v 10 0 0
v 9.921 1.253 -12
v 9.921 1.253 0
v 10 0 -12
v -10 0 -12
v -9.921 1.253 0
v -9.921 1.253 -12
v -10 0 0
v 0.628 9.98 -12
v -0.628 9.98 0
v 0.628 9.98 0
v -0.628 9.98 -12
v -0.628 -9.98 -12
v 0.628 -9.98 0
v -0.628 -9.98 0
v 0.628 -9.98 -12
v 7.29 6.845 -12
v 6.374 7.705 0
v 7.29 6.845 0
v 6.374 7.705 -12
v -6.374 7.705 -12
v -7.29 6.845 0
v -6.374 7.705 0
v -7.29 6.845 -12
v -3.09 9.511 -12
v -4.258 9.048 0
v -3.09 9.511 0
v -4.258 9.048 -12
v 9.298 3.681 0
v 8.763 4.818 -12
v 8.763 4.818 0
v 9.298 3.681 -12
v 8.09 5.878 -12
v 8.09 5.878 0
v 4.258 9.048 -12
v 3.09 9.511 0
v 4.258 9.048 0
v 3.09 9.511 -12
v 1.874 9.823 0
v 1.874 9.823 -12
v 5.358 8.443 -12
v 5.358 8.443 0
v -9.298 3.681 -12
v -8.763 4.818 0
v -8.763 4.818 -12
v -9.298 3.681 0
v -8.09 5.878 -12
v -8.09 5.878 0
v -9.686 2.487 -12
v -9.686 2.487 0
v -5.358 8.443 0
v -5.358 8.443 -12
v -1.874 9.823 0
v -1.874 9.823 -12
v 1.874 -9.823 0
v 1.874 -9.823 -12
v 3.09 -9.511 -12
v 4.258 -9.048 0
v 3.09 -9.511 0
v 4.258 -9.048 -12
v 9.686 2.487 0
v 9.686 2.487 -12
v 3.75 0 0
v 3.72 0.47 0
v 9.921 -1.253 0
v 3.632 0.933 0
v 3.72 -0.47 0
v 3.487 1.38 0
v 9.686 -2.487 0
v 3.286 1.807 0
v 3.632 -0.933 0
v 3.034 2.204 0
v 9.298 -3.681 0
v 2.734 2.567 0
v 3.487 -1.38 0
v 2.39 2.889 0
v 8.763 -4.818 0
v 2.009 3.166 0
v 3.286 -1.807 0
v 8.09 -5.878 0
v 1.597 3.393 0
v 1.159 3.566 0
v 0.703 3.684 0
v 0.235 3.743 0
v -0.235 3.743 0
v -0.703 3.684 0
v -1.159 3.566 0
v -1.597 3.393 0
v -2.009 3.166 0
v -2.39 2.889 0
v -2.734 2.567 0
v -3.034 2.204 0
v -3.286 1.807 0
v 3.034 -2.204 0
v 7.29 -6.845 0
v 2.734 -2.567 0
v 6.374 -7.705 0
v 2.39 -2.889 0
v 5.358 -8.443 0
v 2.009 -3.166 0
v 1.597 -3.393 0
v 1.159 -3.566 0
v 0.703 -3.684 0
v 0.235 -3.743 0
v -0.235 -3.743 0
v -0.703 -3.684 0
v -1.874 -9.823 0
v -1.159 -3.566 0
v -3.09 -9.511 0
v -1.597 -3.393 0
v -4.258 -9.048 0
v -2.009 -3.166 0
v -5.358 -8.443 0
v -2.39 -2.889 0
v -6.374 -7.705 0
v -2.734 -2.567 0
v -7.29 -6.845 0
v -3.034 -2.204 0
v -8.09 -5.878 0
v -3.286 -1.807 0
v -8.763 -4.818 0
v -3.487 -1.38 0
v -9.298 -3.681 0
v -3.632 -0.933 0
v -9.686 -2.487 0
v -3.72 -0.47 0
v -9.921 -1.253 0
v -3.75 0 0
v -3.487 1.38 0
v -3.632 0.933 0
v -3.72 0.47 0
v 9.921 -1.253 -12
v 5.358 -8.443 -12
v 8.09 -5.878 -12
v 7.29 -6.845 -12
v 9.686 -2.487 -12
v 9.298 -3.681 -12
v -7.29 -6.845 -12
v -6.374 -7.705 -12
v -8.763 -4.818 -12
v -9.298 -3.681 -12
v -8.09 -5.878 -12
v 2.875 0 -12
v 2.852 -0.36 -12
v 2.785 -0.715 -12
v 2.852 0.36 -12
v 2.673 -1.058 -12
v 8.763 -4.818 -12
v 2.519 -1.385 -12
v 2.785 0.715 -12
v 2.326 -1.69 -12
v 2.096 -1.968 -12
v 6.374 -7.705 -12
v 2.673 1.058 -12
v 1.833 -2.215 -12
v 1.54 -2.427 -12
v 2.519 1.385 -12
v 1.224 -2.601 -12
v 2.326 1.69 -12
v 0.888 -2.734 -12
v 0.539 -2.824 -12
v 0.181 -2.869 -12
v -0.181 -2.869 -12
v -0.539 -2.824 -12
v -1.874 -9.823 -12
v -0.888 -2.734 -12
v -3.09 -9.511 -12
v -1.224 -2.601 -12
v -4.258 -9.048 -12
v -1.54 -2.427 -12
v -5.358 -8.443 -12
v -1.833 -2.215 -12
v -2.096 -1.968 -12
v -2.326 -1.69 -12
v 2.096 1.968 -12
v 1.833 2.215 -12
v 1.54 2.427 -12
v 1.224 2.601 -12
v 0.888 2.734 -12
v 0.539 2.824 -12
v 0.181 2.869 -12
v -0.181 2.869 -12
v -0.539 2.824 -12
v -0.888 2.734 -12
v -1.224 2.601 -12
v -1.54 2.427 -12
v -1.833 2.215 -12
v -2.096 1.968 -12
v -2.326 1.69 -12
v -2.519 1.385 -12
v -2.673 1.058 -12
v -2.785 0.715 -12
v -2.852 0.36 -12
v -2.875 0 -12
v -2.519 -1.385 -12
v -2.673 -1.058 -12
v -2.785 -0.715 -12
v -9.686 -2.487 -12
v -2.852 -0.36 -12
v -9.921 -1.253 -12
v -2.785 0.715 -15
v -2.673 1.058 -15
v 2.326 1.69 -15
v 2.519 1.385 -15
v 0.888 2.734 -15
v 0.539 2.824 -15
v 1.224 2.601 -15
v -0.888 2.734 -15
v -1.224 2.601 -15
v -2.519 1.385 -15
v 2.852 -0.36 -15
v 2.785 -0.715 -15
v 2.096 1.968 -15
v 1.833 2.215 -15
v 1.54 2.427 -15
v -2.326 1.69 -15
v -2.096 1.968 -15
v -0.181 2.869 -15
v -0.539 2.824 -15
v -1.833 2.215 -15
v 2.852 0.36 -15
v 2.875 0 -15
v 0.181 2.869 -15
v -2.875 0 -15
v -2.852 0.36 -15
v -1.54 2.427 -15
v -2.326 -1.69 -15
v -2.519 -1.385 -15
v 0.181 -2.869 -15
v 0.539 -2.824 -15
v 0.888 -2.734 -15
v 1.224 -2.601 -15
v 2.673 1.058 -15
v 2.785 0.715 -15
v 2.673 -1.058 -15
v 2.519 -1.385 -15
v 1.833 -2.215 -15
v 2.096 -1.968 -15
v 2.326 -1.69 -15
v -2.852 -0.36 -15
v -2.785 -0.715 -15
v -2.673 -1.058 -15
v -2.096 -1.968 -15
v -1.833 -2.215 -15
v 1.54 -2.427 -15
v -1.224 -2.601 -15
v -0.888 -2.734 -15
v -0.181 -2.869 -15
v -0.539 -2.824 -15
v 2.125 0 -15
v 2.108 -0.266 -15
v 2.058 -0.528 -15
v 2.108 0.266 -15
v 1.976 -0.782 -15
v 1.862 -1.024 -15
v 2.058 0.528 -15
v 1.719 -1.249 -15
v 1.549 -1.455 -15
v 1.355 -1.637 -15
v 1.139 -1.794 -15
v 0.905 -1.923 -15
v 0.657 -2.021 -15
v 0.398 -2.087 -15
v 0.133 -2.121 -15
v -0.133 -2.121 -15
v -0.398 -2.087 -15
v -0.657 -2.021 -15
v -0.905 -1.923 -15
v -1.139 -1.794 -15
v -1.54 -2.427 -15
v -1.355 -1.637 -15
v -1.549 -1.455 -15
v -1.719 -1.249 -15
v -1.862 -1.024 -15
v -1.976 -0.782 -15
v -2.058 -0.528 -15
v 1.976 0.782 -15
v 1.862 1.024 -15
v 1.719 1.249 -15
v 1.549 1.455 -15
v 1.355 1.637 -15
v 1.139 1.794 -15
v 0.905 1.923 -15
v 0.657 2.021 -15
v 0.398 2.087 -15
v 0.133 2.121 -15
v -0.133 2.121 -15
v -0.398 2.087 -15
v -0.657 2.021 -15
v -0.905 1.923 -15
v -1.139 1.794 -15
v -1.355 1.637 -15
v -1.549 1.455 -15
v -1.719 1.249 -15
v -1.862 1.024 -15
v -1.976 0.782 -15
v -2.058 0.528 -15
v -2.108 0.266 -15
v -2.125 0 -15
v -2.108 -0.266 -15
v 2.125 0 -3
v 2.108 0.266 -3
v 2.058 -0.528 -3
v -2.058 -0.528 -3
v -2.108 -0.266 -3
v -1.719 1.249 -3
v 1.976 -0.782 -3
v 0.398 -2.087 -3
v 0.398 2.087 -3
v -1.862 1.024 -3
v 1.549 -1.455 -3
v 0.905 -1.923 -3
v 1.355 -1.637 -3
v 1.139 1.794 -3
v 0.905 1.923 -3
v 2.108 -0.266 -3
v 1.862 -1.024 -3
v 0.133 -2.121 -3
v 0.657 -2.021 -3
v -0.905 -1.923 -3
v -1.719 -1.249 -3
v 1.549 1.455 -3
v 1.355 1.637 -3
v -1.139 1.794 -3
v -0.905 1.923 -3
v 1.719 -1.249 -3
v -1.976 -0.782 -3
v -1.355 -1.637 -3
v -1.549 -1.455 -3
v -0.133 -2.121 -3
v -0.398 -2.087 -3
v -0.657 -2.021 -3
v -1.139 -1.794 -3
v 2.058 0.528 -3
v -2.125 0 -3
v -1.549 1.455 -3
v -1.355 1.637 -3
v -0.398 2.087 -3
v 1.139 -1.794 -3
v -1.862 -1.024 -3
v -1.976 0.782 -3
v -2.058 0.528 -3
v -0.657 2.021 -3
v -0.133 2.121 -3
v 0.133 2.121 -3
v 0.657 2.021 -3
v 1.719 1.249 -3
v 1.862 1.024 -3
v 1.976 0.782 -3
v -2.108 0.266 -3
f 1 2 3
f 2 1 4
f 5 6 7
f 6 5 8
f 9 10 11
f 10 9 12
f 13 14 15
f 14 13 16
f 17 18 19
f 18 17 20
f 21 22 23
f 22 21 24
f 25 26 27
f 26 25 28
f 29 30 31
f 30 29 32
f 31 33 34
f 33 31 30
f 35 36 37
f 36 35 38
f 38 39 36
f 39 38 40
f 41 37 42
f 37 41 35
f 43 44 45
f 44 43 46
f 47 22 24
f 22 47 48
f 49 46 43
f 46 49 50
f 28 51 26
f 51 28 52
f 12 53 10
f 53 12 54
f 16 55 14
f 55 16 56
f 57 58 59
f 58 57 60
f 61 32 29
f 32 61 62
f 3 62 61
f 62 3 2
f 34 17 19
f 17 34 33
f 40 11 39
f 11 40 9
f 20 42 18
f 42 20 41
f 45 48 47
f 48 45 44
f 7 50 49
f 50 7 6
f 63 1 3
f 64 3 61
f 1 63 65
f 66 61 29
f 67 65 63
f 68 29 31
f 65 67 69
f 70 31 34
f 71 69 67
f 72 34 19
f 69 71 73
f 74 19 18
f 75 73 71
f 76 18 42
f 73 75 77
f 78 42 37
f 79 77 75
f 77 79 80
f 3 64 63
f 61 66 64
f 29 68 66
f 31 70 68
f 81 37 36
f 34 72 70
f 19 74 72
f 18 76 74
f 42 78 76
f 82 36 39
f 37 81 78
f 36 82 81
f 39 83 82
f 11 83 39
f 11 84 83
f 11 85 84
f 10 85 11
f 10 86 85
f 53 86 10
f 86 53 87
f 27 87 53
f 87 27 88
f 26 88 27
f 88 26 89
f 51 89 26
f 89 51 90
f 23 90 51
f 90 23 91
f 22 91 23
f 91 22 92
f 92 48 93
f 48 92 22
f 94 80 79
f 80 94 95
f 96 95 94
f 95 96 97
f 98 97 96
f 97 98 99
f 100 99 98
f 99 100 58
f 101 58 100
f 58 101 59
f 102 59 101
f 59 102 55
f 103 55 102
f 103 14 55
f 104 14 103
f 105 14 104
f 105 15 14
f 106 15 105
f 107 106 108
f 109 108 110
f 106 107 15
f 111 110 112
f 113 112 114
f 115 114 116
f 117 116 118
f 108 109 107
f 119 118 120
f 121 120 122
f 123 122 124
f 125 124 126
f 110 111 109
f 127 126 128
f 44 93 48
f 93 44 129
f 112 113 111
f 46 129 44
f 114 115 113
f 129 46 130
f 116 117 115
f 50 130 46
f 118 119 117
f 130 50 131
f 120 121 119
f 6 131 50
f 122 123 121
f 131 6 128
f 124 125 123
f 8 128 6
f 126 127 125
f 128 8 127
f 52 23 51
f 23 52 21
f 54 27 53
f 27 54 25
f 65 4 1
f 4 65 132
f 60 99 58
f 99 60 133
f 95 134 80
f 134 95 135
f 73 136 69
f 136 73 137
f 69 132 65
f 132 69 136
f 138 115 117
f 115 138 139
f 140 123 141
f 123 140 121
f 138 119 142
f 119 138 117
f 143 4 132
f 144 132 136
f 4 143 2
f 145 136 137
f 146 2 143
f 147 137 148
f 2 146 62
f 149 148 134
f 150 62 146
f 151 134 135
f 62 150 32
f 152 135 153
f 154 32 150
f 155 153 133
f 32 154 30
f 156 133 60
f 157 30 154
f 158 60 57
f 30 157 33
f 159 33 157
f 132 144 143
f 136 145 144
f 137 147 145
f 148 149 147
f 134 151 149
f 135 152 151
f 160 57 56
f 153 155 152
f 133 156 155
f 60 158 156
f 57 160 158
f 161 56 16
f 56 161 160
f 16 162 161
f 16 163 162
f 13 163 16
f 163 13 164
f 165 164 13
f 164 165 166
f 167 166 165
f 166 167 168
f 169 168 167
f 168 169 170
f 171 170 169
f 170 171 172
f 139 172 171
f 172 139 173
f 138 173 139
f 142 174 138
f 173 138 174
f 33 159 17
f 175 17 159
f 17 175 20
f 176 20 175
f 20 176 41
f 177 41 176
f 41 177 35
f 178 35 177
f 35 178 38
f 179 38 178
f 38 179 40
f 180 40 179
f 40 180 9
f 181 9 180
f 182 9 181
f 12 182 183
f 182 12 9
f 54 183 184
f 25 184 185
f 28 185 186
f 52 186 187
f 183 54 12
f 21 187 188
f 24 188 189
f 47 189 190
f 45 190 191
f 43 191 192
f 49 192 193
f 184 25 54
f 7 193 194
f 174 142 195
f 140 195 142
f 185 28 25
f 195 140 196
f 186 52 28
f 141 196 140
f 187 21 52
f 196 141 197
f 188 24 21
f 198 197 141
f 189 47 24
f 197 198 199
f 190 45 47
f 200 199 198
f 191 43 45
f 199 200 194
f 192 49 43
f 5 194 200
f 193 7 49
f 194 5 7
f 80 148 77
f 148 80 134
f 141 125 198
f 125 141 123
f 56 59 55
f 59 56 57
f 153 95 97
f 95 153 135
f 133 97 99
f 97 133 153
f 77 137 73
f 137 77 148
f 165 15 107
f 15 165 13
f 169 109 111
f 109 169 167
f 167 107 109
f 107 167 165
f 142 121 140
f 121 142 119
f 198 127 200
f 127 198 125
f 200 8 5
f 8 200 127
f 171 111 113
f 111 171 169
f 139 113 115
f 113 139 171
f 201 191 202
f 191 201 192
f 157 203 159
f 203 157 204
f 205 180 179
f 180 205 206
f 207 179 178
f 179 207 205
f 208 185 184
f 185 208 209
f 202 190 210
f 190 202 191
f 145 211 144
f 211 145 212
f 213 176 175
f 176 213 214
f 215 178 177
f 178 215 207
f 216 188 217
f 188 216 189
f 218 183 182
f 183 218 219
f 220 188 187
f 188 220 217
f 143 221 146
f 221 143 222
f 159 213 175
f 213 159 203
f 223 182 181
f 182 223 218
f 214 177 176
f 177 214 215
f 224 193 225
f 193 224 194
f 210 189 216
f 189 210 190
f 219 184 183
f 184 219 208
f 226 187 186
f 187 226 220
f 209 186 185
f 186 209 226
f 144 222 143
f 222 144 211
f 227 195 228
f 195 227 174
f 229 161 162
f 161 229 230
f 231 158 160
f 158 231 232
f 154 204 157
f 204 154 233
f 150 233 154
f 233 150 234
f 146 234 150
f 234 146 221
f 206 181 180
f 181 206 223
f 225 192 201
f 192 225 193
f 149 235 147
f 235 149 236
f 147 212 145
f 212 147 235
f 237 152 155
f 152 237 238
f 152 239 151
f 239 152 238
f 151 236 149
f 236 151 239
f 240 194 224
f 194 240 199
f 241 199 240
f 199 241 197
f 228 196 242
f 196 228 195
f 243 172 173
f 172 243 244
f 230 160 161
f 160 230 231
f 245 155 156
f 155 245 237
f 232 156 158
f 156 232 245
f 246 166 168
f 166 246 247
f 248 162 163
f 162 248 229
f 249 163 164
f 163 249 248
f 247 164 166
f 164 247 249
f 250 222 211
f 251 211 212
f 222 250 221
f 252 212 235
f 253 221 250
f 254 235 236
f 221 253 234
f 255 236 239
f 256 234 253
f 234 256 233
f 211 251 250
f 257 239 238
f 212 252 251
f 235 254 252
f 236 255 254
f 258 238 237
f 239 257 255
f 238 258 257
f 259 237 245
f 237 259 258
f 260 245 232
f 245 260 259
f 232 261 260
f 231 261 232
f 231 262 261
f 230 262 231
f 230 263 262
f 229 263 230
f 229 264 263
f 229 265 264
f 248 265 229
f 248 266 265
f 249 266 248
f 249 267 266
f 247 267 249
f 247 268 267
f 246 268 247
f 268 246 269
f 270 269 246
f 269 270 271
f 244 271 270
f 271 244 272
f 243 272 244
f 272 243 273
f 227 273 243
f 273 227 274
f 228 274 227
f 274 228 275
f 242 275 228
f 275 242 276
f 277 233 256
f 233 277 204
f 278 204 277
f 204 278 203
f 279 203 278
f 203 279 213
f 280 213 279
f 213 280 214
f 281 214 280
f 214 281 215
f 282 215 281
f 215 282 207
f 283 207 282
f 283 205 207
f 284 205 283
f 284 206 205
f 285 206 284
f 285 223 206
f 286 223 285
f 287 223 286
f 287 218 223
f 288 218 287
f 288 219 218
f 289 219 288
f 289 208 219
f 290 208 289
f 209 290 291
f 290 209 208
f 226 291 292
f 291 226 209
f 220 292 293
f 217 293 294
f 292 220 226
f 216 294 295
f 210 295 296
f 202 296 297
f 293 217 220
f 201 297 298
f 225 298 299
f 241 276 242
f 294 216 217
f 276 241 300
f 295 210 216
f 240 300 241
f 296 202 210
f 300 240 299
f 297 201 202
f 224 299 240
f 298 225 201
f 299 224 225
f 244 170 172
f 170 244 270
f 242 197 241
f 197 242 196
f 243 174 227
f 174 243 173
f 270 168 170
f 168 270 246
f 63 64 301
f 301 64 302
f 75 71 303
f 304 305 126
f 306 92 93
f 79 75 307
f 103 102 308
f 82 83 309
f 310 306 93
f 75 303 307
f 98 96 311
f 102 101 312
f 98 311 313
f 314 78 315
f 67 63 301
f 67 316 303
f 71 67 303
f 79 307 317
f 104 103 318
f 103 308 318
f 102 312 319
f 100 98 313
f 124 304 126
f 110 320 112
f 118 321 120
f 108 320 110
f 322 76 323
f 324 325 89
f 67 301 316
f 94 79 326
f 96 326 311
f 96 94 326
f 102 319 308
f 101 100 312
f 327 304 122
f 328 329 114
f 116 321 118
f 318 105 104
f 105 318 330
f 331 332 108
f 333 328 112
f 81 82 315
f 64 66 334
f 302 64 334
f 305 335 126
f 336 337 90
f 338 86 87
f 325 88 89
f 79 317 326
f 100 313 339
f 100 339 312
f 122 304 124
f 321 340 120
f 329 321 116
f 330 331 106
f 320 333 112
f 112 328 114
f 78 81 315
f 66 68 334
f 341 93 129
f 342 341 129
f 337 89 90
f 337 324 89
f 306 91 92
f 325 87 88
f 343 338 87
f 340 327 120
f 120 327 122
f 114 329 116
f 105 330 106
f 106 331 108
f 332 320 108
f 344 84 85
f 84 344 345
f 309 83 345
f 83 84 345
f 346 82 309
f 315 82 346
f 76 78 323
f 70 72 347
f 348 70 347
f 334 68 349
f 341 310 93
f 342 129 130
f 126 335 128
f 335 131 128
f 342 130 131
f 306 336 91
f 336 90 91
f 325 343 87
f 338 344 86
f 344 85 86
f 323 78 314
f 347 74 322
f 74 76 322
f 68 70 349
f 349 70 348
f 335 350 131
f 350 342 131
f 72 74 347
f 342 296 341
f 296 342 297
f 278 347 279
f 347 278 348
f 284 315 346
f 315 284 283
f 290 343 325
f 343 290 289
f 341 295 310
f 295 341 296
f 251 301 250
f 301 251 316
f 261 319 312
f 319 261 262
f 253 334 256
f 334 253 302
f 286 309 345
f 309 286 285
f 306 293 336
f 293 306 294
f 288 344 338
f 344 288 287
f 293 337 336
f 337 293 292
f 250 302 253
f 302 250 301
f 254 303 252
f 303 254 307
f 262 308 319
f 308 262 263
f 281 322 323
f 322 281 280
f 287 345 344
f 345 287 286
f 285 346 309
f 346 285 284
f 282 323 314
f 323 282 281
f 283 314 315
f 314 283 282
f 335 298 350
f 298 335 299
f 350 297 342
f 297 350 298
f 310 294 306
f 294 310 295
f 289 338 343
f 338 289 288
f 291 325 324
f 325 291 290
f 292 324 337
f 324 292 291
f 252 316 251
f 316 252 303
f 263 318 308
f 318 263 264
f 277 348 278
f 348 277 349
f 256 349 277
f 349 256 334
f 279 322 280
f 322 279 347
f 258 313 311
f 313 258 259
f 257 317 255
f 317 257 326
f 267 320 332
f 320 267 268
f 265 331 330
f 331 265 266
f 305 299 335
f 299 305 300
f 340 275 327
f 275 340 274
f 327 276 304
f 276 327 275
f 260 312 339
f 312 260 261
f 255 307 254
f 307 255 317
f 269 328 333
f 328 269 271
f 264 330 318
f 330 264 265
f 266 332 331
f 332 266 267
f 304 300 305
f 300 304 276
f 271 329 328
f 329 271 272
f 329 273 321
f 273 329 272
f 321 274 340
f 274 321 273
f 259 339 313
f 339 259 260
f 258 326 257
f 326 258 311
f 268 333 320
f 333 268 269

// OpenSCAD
$fn = 50;


difference() {
	union() {
		translate(v = [0, 0, -12.0000000000]) {
			cylinder(h = 12, r = 10.0000000000);
		}
		#translate(v = [0, 0, -15.0000000000]) {
			cylinder(h = 15, r = 2.8750000000);
		}
	}
	union() {
		translate(v = [0, 0, 0]) {
			rotate(a = [0, 0, 0]) {
				difference() {
					union() {
						translate(v = [0, 0, -15.0000000000]) {
							cylinder(h = 15, r = 2.0000000000);
						}
						translate(v = [0, 0, -3]) {
							cylinder(h = 3, r1 = 2.1250000000, r2 = 3.7500000000);
						}
						translate(v = [0, 0, -15.0000000000]) {
							cylinder(h = 15, r = 2.1250000000);
						}
						translate(v = [0, 0, -15.0000000000]) {
							cylinder(h = 15, r = 2.0000000000);
						}
					}
					union();
				}
			}
		}
	}
}
